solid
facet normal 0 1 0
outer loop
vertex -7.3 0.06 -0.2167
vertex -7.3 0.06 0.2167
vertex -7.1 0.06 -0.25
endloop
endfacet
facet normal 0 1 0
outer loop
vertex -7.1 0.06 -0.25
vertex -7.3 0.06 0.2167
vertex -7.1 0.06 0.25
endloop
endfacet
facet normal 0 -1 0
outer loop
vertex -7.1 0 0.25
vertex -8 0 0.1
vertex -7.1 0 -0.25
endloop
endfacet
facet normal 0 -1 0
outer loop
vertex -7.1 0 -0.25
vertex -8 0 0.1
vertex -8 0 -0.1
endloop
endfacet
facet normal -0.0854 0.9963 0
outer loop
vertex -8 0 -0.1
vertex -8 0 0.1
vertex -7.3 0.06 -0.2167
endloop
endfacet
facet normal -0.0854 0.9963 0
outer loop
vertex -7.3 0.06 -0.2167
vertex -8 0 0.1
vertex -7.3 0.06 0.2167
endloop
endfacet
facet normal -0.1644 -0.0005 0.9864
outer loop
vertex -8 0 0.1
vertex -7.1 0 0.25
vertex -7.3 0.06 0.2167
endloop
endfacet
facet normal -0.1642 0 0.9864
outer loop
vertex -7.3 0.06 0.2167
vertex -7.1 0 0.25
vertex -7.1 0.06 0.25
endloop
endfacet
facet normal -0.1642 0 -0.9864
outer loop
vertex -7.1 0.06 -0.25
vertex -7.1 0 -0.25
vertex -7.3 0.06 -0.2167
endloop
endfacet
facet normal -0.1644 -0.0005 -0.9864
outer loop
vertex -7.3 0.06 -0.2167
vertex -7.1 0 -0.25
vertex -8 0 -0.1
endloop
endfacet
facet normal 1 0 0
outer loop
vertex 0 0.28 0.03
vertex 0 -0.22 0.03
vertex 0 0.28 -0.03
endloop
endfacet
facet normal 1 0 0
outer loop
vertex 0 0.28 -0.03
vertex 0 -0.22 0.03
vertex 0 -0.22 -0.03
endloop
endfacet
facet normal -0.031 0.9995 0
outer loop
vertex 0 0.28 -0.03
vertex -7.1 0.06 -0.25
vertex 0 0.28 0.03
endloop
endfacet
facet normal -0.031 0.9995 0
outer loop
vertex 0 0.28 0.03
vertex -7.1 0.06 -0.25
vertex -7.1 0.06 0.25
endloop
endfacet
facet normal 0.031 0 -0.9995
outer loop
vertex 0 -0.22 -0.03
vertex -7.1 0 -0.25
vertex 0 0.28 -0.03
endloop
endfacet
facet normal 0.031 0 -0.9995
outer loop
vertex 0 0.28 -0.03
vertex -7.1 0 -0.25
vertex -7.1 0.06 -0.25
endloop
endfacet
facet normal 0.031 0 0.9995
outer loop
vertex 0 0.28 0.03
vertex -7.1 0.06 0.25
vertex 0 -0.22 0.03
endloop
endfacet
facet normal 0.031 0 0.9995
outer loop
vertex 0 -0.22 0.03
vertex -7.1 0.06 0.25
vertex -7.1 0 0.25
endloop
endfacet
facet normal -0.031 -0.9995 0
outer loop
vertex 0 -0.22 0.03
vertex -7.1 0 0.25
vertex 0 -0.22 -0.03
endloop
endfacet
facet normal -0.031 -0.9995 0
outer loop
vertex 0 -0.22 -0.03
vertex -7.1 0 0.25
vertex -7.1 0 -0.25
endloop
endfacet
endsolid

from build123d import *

# Parameters (mm, degrees)
BOSS_EXTRUDE1_DEPTH = 0.06
CUT_EXTRUDE3_DEPTH  = 9.09728967
CUT_EXTRUDE4_DEPTH  = 9.09728967
CUT_EXTRUDE5_DEPTH  = 2.5
SKETCH7_W           = 7.1
SKETCH7_H           = 0.5
CUT_EXTRUDE6_DEPTH  = 2.5


with BuildPart() as part:
    # Sketch1 → Boss-Extrude1 (new body)
    with BuildSketch(Plane(origin=(0, 0, 0), x_dir=(1, 0, 0), z_dir=(0, 1, 0))):
        with BuildLine():
            ThreePointArc((-0.362264151, -0.932075472), (-0.747576714, -0.664175471), (-0.968245837, -0.25))
            Line((-0.968245837, -0.25), (-4, -0.25))
            Line((-4, -0.25), (-0.362264151, -0.932075472))
        make_face()
        with BuildLine():
            ThreePointArc((-0.968245837, 0.25), (-0.747576714, 0.664175471), (-0.362264151, 0.932075472))
            Line((-0.362264151, 0.932075472), (-4, 0.25))
            Line((-4, 0.25), (-0.968245837, 0.25))
        make_face()
        with BuildLine():
            ThreePointArc((-0.968245837, -0.25), (-1, 0), (-0.968245837, 0.25))
            Line((-0.968245837, 0.25), (-4, 0.25))
            Line((-4, 0.25), (-8, 0.25))
            Line((-8, 0.25), (-8, -0.25))
            Line((-8, -0.25), (-4, -0.25))
            Line((-4, -0.25), (-0.968245837, -0.25))
        make_face()
        with BuildLine():
            Line((0, -1), (0, -0.25))
            Line((0, -0.25), (-0.968245837, -0.25))
            ThreePointArc((-0.968245837, -0.25), (-0.747576714, -0.664175471), (-0.362264151, -0.932075472))
            Line((-0.362264151, -0.932075472), (0, -1))
        make_face()
        with BuildLine():
            Line((0, 0.25), (0, 1))
            Line((0, 1), (-0.362264151, 0.932075472))
            ThreePointArc((-0.362264151, 0.932075472), (-0.747576714, 0.664175471), (-0.968245837, 0.25))
            Line((-0.968245837, 0.25), (0, 0.25))
        make_face()
        with BuildLine():
            Line((0, -0.25), (0, 0.25))
            Line((0, 0.25), (-0.968245837, 0.25))
            ThreePointArc((-0.968245837, 0.25), (-1, 0), (-0.968245837, -0.25))
            Line((-0.968245837, -0.25), (0, -0.25))
        make_face()
    extrude(amount=BOSS_EXTRUDE1_DEPTH)

    # Sketch5 → Cut-Extrude3 (cut, through all)
    with BuildSketch(Plane.XY.offset(0.25)):
        Polygon((-8, 0), (-8, 0.06), (-7.3, 0.06), align=None)
    extrude(amount=-CUT_EXTRUDE3_DEPTH, mode=Mode.SUBTRACT)

    # 3DSketch1 → Cut-Extrude4 (cut, through all)
    with BuildSketch(Plane(origin=(-8, 0.06, 0.25), x_dir=(0.8741572761215382, 0, -0.48564293117863155), z_dir=(0, 1, 0))):
        Polygon((0, 0), (0.07284644, 0.131123591), (0.786741549, -0.437078638), align=None)
        Polygon((1.029563014, 0), (0.242821466, 0.437078638), (0.169975026, 0.305955047), align=None)
    extrude(amount=-CUT_EXTRUDE4_DEPTH, mode=Mode.SUBTRACT)

    # Sketch6 → Cut-Extrude5 (cut)
    with BuildSketch(Plane(origin=(0, 0.06, 0), x_dir=(1, 0, 0), z_dir=(0, 1, 0))):
        Polygon((0, 1), (-4, 0.25), (0, 0.25), align=None)
        Polygon((0, -0.25), (-4, -0.25), (0, -1), align=None)
    extrude(amount=-CUT_EXTRUDE5_DEPTH, mode=Mode.SUBTRACT)

    # Sketch7 → Cut-Extrude6 (cut)
    with BuildSketch(Plane(origin=(0, 0.06, 0), x_dir=(1, 0, 0), z_dir=(0, 1, 0))):
        with Locations((-3.55, 0)):
            Rectangle(SKETCH7_W, SKETCH7_H)
    extrude(amount=-CUT_EXTRUDE6_DEPTH, mode=Mode.SUBTRACT)

    # Loft2: read off the stored shape, not the designer's step
    # Loft2: loft between two sections, ruled curve by curve
    loft2_from = [
        Edge.make_line((0, 0.28, 0.03), (0, 0.28, -0.03)),
        Edge.make_line((0, 0.28, -0.03), (0, -0.22, -0.03)),
        Edge.make_line((0, -0.22, 0.03), (0, 0.28, 0.03)),
        Edge.make_line((0, -0.22, -0.03), (0, -0.22, 0.03)),
    ]
    loft2_to = [
        Edge.make_line((-7.1, 0.06, 0.25), (-7.1, 0.06, -0.25)),
        Edge.make_line((-7.1, 0.06, -0.25), (-7.1, 0, -0.25)),
        Edge.make_line((-7.1, 0, 0.25), (-7.1, 0.06, 0.25)),
        Edge.make_line((-7.1, 0, -0.25), (-7.1, 0, 0.25)),
    ]
    loft2 = Solid(Shell([*[Face.make_surface_from_curves(loft2_from[k], loft2_to[k]) for k in range(4)], Face(Wire(loft2_from)), Face(Wire(loft2_to))]))
    add(loft2)


solid = part.part
